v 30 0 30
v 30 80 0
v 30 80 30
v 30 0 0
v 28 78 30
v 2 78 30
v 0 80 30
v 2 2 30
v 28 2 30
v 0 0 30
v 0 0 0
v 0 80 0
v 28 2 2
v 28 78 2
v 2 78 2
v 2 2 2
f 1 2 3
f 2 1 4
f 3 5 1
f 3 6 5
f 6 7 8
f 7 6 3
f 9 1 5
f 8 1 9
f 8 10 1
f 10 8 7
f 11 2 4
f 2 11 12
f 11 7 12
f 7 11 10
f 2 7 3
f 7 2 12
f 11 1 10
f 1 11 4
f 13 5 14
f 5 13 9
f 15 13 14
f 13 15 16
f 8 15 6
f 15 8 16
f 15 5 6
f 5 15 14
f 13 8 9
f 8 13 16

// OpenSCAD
/* [モデル選択] */
variant = "standard"; // [standard:標準, small:小型]

/* [外形寸法 mm] */
width = variant == "small" ? 20 : 30;
length = variant == "small" ? 20 : 80;
height = variant == "small" ? 10 : 30;

/* [肉厚 mm] */
wall = variant == "small" ? 1 : 2;

module model() {
  difference() {
    cube([width, length, height]);
    translate([wall, wall, wall])
      cube([width - wall * 2, length - wall * 2, height - wall]);
  }
}

model();
